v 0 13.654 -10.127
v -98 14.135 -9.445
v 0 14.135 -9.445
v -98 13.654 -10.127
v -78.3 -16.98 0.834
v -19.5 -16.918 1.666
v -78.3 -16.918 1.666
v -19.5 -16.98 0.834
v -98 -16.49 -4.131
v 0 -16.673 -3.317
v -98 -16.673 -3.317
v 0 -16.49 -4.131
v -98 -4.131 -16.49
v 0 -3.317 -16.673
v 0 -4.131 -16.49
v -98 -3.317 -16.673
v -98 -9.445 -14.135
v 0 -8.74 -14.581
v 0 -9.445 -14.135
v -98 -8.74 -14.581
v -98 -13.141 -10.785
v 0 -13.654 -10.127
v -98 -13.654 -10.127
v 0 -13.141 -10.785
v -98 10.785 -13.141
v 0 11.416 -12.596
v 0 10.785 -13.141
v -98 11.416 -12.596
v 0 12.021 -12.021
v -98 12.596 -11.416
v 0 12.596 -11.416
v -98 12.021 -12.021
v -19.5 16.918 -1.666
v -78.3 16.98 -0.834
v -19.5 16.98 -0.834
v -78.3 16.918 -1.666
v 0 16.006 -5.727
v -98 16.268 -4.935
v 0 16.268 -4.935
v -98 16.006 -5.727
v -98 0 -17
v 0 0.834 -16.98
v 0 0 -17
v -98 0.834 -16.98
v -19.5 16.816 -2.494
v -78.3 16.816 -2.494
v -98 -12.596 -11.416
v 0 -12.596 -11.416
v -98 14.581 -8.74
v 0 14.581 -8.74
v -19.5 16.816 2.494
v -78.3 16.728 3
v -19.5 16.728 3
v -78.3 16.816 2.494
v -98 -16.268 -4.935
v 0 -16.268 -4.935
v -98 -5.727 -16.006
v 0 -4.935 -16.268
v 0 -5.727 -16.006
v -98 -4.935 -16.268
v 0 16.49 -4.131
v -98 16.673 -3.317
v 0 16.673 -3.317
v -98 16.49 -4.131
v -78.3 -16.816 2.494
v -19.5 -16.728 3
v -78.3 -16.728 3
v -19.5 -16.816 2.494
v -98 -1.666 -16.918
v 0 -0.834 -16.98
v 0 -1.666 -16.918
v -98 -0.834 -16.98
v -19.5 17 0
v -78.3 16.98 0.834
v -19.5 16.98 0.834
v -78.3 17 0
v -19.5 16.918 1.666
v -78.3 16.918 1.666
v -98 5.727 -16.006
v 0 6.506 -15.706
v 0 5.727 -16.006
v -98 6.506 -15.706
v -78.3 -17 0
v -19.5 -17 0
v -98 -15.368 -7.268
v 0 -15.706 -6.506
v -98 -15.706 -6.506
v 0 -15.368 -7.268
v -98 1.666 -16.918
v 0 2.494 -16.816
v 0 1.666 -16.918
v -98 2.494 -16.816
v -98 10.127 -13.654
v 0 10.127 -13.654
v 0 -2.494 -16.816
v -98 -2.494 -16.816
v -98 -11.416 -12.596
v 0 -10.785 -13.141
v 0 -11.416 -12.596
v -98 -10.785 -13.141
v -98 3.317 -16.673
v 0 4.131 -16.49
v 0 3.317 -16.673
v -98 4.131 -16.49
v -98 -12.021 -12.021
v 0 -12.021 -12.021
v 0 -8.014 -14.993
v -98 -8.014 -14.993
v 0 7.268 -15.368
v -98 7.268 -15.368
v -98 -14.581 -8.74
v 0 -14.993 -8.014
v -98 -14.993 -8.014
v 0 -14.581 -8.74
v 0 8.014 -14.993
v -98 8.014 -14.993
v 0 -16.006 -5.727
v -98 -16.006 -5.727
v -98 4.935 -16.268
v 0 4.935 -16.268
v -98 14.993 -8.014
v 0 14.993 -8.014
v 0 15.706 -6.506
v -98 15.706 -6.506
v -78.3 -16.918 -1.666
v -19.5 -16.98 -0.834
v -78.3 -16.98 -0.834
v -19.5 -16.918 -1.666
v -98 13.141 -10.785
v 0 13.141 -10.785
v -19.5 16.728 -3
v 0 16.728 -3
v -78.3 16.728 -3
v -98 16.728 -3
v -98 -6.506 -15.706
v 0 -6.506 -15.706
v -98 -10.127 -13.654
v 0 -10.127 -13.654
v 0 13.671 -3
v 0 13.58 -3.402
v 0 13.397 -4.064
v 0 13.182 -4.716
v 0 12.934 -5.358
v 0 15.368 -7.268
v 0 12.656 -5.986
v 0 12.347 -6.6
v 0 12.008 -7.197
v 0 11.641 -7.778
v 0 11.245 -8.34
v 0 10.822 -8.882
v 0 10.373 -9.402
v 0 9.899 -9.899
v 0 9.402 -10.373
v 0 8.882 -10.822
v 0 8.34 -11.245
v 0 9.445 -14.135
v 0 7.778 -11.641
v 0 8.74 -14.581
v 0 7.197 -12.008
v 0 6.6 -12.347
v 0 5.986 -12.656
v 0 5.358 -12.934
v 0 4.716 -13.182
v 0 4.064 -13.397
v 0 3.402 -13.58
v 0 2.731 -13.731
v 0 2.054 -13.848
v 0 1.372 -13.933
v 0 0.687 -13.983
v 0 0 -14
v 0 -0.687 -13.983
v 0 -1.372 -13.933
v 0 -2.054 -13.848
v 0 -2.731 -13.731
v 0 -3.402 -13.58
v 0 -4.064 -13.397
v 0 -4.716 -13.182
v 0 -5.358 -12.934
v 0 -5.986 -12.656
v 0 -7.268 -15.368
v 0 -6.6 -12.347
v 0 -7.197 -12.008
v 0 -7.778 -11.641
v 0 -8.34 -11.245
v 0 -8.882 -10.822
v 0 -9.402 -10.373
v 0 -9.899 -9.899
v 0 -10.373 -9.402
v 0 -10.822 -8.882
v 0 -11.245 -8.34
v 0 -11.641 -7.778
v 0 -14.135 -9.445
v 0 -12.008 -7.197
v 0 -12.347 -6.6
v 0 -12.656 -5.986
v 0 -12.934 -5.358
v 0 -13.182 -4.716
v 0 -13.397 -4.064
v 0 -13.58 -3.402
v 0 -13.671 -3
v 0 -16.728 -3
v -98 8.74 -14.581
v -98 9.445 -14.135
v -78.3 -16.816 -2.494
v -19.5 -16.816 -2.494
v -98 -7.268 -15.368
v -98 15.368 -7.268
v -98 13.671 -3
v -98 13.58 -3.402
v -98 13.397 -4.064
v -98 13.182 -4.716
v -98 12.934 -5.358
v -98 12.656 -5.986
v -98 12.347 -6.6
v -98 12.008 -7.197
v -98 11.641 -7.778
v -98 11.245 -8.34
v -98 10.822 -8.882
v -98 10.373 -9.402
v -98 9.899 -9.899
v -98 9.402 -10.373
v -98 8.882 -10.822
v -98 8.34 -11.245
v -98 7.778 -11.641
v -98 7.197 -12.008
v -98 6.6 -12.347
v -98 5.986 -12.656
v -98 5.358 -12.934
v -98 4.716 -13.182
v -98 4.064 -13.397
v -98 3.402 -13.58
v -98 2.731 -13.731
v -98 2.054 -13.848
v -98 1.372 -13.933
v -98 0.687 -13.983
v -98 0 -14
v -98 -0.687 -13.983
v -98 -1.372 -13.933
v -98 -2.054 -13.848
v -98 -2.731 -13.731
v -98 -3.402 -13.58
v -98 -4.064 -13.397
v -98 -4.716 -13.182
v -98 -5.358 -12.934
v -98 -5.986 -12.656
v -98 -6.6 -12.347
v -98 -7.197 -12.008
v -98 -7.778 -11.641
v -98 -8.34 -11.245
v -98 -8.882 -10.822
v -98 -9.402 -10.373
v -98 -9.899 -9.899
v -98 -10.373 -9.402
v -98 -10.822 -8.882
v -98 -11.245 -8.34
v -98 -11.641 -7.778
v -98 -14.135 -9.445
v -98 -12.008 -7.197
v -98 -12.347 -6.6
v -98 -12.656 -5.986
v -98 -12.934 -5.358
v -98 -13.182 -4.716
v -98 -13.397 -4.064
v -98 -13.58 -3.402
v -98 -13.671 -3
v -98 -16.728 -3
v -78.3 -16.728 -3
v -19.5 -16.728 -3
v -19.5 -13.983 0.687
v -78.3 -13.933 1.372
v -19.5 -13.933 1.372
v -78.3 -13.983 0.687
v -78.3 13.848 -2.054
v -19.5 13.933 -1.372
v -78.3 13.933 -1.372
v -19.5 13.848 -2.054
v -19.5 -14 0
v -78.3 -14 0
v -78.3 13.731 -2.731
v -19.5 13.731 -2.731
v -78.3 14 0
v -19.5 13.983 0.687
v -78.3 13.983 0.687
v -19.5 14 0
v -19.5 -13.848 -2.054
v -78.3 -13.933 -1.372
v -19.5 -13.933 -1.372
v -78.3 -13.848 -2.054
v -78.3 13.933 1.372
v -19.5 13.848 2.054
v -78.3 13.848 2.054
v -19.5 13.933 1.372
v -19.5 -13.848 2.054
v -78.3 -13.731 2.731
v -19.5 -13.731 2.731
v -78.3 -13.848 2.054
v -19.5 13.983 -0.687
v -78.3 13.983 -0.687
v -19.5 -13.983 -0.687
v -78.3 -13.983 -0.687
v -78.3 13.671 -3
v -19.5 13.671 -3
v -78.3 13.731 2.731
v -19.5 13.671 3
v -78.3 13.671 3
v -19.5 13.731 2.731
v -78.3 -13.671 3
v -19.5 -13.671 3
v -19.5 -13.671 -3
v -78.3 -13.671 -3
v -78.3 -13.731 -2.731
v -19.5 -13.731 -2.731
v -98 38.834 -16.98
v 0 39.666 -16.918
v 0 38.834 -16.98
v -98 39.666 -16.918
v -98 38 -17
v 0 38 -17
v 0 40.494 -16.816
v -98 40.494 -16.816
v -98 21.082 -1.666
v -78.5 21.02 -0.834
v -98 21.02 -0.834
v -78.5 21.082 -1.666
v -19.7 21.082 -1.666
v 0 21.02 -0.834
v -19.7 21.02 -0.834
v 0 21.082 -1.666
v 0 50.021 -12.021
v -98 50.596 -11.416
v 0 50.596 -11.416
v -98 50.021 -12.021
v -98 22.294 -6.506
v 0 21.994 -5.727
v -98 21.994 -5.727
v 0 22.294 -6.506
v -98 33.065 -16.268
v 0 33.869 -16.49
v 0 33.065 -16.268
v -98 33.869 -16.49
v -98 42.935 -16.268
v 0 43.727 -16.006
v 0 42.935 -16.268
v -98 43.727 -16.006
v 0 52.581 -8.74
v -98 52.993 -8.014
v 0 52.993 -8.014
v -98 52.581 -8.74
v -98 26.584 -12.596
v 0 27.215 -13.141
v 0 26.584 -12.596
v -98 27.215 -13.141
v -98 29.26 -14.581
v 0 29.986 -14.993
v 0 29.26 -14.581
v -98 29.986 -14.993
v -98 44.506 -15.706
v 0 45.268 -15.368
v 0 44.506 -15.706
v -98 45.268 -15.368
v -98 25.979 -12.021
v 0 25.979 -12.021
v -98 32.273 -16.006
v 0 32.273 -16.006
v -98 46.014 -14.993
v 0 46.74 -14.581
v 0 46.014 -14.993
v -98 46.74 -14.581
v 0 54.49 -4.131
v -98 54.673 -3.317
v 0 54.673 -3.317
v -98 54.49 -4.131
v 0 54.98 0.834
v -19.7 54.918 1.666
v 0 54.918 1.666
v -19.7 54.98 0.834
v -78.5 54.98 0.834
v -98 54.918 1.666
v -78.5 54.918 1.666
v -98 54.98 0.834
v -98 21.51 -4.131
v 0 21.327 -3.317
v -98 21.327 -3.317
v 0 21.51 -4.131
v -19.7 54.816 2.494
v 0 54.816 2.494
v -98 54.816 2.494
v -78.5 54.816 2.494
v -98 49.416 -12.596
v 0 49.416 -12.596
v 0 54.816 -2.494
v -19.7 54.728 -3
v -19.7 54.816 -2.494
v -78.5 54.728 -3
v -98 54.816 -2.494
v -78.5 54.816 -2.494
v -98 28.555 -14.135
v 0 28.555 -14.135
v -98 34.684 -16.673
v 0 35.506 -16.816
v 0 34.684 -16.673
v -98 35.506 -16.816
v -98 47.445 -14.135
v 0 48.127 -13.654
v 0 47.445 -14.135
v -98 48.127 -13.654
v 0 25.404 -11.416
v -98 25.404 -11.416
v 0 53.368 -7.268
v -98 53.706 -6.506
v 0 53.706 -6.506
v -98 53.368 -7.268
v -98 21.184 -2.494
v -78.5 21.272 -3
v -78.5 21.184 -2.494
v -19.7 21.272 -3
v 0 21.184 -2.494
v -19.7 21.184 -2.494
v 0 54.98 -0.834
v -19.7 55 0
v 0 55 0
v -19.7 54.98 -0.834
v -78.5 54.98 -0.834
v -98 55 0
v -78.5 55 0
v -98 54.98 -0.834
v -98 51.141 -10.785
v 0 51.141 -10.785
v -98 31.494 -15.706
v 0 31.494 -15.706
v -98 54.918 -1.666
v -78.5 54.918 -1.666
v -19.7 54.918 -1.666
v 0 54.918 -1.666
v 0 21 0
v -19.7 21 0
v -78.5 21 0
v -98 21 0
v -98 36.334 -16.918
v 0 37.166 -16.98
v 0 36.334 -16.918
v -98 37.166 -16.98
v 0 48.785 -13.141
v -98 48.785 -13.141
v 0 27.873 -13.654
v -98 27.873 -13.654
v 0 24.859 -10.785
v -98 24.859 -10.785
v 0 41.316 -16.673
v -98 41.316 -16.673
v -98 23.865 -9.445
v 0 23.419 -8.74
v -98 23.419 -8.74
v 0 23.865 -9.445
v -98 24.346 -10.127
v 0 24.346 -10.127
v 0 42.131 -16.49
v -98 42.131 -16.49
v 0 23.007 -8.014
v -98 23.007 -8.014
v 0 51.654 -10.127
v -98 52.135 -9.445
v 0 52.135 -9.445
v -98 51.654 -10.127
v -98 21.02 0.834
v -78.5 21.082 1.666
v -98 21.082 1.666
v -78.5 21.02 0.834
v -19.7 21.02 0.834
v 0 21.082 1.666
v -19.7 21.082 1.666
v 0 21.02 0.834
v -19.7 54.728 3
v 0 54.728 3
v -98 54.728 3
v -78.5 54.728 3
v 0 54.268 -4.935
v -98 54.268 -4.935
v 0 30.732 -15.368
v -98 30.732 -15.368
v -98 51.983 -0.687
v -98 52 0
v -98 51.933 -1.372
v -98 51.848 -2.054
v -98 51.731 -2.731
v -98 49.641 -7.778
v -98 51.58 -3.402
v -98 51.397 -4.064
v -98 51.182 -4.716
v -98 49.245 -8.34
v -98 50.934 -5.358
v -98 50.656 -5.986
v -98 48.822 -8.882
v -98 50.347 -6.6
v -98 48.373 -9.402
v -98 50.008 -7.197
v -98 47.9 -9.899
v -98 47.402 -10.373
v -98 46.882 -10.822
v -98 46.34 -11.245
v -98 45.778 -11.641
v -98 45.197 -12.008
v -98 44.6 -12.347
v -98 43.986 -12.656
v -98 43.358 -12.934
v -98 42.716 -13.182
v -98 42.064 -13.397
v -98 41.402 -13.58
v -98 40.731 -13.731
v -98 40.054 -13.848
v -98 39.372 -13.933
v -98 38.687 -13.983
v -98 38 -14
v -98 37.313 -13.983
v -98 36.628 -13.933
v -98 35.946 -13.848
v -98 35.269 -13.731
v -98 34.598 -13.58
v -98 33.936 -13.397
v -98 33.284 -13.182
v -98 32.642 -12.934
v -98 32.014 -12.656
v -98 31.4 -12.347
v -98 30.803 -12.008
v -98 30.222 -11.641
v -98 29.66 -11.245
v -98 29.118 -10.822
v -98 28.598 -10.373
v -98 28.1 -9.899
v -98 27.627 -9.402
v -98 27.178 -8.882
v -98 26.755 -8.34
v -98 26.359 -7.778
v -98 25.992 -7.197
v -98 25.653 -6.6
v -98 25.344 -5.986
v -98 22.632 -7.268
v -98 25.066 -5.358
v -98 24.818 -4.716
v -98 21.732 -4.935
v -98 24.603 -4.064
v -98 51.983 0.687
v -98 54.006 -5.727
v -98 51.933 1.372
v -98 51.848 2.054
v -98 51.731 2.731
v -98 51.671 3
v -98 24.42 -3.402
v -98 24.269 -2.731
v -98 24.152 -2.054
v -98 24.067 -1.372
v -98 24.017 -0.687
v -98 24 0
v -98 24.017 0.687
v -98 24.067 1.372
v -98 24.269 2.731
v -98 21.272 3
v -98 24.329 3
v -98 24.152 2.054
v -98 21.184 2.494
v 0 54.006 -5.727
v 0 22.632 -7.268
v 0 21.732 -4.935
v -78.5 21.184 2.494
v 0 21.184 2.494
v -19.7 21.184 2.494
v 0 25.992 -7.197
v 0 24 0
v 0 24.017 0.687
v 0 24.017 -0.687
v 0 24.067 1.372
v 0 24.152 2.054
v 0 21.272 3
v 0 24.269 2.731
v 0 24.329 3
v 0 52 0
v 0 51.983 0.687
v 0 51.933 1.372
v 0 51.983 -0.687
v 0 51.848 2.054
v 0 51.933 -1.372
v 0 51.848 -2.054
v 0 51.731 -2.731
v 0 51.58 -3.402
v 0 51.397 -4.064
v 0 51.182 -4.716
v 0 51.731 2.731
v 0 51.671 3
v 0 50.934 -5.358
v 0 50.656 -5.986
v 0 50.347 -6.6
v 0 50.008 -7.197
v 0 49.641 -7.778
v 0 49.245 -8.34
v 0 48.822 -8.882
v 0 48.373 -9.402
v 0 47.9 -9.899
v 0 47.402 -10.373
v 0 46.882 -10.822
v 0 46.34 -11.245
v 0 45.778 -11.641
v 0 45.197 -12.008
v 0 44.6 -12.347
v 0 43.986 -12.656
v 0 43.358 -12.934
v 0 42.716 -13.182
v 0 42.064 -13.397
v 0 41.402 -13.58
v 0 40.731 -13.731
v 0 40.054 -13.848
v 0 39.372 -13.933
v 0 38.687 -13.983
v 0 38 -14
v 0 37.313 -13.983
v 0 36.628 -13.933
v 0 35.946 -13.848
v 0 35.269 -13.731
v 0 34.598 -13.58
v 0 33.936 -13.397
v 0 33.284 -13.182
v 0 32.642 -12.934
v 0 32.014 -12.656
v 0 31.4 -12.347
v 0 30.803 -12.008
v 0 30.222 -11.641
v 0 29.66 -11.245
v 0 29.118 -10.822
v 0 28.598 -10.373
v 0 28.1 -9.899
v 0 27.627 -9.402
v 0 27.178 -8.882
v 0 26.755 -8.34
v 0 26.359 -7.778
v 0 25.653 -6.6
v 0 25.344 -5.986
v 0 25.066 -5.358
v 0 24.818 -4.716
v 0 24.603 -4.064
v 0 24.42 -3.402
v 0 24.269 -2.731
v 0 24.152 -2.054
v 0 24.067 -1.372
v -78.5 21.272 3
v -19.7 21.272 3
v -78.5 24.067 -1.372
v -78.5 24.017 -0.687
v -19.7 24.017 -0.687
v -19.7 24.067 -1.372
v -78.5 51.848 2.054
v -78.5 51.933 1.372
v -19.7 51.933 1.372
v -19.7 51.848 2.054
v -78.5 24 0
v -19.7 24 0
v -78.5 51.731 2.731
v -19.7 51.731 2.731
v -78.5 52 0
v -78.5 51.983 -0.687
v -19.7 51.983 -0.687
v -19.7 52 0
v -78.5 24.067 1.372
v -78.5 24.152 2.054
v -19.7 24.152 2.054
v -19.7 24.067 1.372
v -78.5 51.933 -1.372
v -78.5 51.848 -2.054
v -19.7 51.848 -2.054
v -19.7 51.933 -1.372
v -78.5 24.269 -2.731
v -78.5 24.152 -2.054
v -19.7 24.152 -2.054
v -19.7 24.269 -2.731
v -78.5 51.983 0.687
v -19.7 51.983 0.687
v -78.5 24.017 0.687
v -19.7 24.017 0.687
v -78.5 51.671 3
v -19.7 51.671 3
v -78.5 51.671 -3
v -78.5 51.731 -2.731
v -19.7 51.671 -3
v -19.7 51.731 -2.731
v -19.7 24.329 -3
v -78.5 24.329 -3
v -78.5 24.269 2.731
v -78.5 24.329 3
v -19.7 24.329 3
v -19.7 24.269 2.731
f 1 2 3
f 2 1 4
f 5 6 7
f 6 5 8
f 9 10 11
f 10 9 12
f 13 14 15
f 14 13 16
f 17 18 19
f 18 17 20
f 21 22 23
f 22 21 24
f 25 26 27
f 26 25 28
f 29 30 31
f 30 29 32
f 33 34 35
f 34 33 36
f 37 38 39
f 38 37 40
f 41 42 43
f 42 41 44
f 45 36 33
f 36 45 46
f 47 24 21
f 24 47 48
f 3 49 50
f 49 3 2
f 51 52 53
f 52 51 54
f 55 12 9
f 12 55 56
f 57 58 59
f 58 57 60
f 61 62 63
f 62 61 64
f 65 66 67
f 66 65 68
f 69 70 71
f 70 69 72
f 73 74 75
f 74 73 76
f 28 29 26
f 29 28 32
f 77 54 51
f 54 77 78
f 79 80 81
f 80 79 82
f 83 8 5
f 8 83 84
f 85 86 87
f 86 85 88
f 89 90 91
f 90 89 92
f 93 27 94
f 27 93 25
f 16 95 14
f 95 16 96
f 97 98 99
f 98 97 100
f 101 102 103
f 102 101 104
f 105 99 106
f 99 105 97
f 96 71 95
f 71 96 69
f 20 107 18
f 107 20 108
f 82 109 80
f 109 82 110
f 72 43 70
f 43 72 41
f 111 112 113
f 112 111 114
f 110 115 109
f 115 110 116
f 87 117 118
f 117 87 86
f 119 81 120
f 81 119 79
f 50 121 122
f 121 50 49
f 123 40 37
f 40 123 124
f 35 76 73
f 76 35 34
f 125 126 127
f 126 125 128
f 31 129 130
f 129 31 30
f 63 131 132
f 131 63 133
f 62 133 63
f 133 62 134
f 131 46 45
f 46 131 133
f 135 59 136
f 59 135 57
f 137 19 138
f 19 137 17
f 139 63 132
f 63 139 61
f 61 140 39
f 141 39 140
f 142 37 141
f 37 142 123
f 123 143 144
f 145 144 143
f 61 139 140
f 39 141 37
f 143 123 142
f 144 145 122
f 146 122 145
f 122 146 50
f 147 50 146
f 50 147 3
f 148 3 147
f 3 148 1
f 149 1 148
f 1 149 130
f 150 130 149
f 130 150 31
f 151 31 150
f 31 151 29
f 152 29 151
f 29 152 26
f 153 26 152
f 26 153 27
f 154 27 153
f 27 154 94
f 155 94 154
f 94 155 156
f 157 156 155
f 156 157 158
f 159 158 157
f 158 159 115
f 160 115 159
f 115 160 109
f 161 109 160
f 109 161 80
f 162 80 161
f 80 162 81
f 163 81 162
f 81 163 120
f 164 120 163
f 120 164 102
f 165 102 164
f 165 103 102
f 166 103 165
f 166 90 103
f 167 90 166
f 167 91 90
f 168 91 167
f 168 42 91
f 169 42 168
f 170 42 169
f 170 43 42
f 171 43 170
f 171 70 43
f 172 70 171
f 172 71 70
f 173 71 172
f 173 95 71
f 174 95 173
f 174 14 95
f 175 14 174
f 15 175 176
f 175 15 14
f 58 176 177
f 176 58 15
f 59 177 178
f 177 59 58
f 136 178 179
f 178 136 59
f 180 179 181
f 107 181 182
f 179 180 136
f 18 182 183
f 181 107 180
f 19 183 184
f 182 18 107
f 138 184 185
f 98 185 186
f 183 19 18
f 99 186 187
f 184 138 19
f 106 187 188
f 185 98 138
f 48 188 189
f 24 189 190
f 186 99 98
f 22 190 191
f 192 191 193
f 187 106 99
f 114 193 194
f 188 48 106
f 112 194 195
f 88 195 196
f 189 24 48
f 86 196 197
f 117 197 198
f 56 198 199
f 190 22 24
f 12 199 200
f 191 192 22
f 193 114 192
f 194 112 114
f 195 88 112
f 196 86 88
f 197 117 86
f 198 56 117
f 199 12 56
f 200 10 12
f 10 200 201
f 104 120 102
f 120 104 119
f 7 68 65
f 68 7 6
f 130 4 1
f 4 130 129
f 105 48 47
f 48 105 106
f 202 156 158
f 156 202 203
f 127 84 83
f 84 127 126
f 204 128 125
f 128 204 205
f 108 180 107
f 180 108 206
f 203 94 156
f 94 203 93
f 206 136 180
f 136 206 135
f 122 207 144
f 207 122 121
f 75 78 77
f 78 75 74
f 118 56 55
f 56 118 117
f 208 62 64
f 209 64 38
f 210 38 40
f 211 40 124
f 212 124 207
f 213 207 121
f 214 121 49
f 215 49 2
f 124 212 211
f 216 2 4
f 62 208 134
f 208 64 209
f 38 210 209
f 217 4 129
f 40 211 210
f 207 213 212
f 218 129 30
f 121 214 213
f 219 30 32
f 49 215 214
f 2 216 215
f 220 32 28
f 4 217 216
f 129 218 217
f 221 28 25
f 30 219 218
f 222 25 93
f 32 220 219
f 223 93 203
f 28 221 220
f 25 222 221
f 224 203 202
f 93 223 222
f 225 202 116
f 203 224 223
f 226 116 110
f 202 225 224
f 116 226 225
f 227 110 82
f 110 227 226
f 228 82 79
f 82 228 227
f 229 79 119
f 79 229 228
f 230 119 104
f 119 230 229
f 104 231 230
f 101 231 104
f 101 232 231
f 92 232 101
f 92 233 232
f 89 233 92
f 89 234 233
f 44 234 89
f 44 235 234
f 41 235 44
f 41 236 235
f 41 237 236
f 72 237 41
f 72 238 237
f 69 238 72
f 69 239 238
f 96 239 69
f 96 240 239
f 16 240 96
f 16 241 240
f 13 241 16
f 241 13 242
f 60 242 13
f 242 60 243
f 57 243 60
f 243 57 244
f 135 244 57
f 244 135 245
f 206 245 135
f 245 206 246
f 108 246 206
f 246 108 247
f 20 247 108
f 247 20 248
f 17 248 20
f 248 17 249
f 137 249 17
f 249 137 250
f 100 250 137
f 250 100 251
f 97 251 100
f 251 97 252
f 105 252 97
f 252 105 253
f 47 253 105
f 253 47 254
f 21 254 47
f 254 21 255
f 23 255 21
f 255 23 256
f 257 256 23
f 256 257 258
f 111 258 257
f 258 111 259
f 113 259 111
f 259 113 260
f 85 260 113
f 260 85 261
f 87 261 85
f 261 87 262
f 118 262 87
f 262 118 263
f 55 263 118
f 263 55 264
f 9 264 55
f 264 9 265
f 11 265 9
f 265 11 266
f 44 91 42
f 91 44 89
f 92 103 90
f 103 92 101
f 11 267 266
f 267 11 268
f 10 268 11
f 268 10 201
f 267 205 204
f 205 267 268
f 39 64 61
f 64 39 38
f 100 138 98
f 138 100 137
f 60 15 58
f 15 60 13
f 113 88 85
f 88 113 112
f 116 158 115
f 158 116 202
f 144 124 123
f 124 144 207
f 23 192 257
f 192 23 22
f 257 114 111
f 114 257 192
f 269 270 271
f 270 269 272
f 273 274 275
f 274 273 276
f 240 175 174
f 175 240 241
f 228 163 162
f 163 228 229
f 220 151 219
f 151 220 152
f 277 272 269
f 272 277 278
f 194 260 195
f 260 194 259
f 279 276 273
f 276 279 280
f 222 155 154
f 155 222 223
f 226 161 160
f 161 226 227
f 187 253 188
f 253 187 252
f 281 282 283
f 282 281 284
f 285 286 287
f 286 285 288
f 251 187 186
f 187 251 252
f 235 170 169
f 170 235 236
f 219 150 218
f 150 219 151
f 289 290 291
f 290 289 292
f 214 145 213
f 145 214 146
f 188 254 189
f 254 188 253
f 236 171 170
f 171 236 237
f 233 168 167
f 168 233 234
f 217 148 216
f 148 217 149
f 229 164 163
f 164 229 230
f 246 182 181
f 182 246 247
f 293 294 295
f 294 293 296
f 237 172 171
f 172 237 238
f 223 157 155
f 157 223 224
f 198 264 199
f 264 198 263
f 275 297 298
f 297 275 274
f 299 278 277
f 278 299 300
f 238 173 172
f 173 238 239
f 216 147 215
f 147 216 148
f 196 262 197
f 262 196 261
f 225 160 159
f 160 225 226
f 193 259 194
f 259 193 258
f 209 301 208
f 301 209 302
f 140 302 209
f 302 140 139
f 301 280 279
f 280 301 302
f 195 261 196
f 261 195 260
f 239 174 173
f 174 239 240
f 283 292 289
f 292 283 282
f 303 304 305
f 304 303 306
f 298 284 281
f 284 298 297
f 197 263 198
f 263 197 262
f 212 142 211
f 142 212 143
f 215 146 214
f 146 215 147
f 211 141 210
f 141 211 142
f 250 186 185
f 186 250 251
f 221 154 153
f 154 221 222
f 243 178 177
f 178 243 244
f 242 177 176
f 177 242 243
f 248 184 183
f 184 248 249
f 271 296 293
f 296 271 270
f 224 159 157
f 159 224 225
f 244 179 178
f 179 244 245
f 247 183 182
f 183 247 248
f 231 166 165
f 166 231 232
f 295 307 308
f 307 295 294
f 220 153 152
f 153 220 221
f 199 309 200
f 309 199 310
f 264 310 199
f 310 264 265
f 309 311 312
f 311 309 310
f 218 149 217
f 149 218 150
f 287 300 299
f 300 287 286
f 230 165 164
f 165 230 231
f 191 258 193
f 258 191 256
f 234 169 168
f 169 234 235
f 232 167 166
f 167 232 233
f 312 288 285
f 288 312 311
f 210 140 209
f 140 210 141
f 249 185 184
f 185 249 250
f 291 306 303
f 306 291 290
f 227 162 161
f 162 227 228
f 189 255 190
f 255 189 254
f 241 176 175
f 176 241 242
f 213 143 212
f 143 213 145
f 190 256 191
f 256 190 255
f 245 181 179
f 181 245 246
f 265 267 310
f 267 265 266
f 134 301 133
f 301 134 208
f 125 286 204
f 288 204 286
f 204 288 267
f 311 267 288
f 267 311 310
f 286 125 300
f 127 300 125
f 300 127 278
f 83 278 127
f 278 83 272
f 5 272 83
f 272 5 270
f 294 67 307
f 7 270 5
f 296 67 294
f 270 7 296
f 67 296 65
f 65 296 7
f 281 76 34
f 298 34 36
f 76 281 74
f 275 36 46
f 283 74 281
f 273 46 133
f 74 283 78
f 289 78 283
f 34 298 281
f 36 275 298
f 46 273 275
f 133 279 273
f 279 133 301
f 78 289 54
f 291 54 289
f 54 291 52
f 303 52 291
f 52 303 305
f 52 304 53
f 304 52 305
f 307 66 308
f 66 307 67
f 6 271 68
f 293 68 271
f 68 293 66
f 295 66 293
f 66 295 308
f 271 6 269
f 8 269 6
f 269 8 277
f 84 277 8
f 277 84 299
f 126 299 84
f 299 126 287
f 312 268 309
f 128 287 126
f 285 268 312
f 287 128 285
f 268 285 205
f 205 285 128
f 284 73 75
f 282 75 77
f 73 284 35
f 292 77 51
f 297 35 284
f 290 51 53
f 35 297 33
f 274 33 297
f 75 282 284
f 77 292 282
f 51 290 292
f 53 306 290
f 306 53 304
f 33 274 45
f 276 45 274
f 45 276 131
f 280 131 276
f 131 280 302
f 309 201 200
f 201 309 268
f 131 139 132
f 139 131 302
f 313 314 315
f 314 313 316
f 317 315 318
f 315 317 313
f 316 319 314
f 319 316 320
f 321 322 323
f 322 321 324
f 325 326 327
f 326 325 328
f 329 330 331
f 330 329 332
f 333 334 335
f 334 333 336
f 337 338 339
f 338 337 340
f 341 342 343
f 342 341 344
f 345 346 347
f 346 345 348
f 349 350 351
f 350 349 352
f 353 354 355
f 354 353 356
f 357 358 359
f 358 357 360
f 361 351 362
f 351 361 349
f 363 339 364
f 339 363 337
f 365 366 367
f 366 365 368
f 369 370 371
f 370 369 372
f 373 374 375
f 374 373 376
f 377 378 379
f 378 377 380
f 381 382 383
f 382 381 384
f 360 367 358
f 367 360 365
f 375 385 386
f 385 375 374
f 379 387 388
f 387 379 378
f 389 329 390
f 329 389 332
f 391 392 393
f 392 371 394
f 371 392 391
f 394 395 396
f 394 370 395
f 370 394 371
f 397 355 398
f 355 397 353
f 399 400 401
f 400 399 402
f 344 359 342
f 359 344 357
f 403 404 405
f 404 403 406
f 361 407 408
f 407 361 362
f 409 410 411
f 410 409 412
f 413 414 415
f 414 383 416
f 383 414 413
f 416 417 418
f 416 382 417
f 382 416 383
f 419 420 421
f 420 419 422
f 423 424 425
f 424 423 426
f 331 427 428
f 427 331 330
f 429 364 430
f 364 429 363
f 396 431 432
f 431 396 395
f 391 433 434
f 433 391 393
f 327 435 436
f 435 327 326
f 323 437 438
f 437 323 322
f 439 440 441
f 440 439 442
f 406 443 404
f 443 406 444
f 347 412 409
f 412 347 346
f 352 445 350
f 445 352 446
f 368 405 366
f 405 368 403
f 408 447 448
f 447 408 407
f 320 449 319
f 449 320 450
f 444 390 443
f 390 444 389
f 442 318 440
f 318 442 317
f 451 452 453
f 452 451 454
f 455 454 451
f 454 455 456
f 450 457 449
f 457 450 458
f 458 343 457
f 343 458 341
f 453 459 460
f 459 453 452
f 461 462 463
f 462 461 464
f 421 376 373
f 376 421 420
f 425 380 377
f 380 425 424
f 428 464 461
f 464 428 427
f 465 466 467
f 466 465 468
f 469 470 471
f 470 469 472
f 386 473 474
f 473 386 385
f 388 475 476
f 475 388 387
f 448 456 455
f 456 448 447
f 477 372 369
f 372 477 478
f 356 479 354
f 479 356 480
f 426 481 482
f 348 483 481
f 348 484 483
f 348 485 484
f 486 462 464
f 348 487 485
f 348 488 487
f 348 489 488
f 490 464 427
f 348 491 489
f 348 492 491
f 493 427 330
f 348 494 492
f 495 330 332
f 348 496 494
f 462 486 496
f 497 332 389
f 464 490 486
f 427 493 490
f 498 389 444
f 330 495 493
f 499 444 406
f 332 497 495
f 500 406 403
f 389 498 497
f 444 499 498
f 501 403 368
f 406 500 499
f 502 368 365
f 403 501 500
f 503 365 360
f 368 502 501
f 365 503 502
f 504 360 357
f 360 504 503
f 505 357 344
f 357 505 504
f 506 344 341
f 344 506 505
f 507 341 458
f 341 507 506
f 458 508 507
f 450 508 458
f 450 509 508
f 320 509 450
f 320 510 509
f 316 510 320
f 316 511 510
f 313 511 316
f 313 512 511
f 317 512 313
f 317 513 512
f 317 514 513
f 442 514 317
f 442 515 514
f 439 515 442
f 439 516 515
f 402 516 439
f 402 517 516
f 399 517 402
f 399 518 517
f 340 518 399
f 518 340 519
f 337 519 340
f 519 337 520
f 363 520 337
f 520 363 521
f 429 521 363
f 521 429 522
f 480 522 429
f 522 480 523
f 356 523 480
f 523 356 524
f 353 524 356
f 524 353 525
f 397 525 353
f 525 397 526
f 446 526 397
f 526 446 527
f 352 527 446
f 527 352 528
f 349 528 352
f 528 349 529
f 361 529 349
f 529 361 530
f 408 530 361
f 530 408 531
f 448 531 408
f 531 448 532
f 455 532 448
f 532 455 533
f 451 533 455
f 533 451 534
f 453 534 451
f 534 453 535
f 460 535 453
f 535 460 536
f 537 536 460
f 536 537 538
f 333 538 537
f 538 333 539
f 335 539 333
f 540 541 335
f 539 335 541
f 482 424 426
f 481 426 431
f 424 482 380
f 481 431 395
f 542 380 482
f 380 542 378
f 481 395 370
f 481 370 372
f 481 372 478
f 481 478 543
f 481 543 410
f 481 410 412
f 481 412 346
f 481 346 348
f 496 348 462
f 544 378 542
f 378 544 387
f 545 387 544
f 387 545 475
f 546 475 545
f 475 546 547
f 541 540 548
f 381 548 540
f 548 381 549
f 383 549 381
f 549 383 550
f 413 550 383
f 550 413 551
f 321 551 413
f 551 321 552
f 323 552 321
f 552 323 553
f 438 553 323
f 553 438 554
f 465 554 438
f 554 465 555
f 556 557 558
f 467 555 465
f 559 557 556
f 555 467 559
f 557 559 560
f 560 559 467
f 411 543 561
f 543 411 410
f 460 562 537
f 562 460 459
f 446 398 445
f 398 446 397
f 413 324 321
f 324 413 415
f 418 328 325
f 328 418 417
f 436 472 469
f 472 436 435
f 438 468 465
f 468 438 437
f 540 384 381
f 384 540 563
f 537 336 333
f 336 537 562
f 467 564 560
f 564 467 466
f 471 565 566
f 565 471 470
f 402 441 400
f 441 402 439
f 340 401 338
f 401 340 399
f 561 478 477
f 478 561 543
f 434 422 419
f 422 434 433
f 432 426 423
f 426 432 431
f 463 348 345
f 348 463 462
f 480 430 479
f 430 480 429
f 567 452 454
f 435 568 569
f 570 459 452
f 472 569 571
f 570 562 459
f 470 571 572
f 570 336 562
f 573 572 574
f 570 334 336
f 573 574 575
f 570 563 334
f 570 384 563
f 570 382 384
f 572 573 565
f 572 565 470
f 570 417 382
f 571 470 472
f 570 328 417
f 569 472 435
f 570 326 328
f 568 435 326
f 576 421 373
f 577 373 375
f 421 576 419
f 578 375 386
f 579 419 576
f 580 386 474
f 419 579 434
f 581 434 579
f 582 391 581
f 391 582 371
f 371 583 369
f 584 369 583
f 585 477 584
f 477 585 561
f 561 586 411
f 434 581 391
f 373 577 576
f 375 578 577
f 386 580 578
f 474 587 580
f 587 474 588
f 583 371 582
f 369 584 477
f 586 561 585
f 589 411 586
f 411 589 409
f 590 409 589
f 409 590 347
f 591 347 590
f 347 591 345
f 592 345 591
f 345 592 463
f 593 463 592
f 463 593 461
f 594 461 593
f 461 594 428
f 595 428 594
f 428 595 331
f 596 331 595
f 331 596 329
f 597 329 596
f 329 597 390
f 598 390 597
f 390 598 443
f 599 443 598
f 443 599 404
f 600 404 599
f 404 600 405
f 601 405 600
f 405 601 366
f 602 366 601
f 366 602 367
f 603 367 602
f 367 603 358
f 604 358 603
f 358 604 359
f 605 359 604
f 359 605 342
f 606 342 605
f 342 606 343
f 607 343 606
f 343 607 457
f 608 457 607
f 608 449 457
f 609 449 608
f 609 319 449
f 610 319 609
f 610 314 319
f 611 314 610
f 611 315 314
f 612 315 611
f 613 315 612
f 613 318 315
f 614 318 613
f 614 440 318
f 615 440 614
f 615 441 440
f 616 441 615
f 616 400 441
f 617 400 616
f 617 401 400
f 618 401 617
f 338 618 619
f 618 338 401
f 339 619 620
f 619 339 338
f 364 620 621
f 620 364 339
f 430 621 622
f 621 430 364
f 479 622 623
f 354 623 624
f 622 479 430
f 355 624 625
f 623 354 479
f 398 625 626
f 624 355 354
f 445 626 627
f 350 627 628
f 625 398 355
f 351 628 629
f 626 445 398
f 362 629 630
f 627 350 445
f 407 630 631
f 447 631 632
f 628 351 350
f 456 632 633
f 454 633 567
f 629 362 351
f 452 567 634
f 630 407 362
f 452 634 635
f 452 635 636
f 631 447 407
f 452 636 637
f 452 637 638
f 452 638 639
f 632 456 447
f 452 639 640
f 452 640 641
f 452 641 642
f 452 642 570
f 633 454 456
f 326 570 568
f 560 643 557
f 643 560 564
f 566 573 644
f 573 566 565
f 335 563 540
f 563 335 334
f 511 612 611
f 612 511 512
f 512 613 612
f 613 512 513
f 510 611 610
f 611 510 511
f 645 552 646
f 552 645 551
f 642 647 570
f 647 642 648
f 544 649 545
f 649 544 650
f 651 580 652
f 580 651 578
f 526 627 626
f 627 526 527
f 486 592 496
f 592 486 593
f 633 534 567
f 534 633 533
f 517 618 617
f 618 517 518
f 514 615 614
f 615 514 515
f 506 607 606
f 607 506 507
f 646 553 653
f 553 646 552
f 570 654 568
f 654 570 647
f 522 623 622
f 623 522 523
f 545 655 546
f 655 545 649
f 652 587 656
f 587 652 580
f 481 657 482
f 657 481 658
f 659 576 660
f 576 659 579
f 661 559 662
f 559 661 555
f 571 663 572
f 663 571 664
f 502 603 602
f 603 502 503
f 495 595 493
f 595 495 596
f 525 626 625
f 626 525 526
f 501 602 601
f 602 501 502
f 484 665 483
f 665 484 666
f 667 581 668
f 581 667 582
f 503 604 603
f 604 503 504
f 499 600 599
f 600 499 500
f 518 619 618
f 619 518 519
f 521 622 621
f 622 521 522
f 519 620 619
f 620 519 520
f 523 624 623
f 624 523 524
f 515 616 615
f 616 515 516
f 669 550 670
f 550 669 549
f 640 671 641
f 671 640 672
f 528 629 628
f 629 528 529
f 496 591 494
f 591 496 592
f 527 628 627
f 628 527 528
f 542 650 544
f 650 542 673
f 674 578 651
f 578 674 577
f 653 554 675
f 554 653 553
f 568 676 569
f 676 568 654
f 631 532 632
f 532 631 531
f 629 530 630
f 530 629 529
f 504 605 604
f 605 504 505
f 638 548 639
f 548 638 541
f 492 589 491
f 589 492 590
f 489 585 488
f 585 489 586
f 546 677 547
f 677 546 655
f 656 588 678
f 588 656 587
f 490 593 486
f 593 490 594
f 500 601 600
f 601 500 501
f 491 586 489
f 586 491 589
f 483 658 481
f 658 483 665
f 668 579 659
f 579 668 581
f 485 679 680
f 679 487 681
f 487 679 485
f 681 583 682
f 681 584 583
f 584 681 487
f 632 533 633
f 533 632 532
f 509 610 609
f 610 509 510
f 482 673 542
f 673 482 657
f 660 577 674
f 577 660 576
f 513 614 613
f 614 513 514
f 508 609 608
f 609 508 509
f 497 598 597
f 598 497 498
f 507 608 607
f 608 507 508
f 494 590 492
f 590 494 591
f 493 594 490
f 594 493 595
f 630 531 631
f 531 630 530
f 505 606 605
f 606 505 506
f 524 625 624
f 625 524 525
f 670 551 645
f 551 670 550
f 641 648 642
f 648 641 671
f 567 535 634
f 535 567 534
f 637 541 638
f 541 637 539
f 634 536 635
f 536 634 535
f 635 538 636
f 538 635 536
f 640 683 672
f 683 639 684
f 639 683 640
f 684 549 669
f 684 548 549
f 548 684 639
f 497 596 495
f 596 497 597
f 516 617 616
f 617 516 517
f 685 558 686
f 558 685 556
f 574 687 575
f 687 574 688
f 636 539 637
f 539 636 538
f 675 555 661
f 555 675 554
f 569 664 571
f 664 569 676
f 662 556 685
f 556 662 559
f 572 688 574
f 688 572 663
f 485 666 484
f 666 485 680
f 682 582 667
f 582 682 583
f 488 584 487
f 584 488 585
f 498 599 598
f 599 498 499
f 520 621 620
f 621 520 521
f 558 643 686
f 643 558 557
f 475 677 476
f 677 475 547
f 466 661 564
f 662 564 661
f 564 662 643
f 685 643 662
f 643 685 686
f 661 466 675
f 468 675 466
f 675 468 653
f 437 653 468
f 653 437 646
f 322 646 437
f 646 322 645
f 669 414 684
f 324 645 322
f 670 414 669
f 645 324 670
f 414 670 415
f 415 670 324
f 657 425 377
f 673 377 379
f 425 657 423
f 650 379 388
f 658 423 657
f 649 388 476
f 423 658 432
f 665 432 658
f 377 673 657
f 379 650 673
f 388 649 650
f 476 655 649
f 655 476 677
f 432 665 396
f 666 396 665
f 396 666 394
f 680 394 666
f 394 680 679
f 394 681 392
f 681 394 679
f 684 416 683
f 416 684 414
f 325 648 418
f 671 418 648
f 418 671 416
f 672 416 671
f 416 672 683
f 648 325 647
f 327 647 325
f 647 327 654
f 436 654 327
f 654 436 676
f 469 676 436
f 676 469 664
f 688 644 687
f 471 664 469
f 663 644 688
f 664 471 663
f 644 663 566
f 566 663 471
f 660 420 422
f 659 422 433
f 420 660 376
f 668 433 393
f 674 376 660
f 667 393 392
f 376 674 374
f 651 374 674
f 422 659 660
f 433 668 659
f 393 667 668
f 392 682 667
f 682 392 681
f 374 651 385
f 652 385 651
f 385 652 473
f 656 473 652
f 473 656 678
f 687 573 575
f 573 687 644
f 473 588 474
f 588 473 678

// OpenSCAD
//
// cyclindrical chair support for
// broken hydraulic lift Staples chair
//
// two half-cylinders with some interlocking bits


id = 28;
hgt = 98;
wall = 3;

jag = 3;

e = 0.1;

$fn=128;

// basic hollow cylinder
module cylin() {
     difference() {
	  cylinder( h=hgt, r=id/2+wall);
	  translate( [0, 0, -e])
	  cylinder( h=hgt+2*e, r=id/2);
     }
}

// cutting surface (drawn as if in X-Z plane)

module cutpoly(flip) {
     polygon( points = [ [-jag, -e], [-jag, hgt/5], [jag, hgt/5],
			 [jag, 4*hgt/5], [-jag,4*hgt/5], [-jag, hgt+2*e],
			 [flip*id, hgt+2*e], [flip*id, -e], [-jag, e]]);
}

module cutsolid(flip) {
     translate( [0, id/2+e+wall, -e])
	  rotate( [90, 0, 0])
	  linear_extrude( height=id+2*(wall+e)) { cutpoly(flip); }
}

module left() {
     difference() {
	  cylin();
	  cutsolid(1);
     }
}


module right() {
     difference() {
	  cylin();
	  cutsolid(-1);
     }
}


rotate( [0, 270, 0]) {
     left();
}

rotate( [0, 90, 0])
     translate( [0, id+10, -hgt])
right();
